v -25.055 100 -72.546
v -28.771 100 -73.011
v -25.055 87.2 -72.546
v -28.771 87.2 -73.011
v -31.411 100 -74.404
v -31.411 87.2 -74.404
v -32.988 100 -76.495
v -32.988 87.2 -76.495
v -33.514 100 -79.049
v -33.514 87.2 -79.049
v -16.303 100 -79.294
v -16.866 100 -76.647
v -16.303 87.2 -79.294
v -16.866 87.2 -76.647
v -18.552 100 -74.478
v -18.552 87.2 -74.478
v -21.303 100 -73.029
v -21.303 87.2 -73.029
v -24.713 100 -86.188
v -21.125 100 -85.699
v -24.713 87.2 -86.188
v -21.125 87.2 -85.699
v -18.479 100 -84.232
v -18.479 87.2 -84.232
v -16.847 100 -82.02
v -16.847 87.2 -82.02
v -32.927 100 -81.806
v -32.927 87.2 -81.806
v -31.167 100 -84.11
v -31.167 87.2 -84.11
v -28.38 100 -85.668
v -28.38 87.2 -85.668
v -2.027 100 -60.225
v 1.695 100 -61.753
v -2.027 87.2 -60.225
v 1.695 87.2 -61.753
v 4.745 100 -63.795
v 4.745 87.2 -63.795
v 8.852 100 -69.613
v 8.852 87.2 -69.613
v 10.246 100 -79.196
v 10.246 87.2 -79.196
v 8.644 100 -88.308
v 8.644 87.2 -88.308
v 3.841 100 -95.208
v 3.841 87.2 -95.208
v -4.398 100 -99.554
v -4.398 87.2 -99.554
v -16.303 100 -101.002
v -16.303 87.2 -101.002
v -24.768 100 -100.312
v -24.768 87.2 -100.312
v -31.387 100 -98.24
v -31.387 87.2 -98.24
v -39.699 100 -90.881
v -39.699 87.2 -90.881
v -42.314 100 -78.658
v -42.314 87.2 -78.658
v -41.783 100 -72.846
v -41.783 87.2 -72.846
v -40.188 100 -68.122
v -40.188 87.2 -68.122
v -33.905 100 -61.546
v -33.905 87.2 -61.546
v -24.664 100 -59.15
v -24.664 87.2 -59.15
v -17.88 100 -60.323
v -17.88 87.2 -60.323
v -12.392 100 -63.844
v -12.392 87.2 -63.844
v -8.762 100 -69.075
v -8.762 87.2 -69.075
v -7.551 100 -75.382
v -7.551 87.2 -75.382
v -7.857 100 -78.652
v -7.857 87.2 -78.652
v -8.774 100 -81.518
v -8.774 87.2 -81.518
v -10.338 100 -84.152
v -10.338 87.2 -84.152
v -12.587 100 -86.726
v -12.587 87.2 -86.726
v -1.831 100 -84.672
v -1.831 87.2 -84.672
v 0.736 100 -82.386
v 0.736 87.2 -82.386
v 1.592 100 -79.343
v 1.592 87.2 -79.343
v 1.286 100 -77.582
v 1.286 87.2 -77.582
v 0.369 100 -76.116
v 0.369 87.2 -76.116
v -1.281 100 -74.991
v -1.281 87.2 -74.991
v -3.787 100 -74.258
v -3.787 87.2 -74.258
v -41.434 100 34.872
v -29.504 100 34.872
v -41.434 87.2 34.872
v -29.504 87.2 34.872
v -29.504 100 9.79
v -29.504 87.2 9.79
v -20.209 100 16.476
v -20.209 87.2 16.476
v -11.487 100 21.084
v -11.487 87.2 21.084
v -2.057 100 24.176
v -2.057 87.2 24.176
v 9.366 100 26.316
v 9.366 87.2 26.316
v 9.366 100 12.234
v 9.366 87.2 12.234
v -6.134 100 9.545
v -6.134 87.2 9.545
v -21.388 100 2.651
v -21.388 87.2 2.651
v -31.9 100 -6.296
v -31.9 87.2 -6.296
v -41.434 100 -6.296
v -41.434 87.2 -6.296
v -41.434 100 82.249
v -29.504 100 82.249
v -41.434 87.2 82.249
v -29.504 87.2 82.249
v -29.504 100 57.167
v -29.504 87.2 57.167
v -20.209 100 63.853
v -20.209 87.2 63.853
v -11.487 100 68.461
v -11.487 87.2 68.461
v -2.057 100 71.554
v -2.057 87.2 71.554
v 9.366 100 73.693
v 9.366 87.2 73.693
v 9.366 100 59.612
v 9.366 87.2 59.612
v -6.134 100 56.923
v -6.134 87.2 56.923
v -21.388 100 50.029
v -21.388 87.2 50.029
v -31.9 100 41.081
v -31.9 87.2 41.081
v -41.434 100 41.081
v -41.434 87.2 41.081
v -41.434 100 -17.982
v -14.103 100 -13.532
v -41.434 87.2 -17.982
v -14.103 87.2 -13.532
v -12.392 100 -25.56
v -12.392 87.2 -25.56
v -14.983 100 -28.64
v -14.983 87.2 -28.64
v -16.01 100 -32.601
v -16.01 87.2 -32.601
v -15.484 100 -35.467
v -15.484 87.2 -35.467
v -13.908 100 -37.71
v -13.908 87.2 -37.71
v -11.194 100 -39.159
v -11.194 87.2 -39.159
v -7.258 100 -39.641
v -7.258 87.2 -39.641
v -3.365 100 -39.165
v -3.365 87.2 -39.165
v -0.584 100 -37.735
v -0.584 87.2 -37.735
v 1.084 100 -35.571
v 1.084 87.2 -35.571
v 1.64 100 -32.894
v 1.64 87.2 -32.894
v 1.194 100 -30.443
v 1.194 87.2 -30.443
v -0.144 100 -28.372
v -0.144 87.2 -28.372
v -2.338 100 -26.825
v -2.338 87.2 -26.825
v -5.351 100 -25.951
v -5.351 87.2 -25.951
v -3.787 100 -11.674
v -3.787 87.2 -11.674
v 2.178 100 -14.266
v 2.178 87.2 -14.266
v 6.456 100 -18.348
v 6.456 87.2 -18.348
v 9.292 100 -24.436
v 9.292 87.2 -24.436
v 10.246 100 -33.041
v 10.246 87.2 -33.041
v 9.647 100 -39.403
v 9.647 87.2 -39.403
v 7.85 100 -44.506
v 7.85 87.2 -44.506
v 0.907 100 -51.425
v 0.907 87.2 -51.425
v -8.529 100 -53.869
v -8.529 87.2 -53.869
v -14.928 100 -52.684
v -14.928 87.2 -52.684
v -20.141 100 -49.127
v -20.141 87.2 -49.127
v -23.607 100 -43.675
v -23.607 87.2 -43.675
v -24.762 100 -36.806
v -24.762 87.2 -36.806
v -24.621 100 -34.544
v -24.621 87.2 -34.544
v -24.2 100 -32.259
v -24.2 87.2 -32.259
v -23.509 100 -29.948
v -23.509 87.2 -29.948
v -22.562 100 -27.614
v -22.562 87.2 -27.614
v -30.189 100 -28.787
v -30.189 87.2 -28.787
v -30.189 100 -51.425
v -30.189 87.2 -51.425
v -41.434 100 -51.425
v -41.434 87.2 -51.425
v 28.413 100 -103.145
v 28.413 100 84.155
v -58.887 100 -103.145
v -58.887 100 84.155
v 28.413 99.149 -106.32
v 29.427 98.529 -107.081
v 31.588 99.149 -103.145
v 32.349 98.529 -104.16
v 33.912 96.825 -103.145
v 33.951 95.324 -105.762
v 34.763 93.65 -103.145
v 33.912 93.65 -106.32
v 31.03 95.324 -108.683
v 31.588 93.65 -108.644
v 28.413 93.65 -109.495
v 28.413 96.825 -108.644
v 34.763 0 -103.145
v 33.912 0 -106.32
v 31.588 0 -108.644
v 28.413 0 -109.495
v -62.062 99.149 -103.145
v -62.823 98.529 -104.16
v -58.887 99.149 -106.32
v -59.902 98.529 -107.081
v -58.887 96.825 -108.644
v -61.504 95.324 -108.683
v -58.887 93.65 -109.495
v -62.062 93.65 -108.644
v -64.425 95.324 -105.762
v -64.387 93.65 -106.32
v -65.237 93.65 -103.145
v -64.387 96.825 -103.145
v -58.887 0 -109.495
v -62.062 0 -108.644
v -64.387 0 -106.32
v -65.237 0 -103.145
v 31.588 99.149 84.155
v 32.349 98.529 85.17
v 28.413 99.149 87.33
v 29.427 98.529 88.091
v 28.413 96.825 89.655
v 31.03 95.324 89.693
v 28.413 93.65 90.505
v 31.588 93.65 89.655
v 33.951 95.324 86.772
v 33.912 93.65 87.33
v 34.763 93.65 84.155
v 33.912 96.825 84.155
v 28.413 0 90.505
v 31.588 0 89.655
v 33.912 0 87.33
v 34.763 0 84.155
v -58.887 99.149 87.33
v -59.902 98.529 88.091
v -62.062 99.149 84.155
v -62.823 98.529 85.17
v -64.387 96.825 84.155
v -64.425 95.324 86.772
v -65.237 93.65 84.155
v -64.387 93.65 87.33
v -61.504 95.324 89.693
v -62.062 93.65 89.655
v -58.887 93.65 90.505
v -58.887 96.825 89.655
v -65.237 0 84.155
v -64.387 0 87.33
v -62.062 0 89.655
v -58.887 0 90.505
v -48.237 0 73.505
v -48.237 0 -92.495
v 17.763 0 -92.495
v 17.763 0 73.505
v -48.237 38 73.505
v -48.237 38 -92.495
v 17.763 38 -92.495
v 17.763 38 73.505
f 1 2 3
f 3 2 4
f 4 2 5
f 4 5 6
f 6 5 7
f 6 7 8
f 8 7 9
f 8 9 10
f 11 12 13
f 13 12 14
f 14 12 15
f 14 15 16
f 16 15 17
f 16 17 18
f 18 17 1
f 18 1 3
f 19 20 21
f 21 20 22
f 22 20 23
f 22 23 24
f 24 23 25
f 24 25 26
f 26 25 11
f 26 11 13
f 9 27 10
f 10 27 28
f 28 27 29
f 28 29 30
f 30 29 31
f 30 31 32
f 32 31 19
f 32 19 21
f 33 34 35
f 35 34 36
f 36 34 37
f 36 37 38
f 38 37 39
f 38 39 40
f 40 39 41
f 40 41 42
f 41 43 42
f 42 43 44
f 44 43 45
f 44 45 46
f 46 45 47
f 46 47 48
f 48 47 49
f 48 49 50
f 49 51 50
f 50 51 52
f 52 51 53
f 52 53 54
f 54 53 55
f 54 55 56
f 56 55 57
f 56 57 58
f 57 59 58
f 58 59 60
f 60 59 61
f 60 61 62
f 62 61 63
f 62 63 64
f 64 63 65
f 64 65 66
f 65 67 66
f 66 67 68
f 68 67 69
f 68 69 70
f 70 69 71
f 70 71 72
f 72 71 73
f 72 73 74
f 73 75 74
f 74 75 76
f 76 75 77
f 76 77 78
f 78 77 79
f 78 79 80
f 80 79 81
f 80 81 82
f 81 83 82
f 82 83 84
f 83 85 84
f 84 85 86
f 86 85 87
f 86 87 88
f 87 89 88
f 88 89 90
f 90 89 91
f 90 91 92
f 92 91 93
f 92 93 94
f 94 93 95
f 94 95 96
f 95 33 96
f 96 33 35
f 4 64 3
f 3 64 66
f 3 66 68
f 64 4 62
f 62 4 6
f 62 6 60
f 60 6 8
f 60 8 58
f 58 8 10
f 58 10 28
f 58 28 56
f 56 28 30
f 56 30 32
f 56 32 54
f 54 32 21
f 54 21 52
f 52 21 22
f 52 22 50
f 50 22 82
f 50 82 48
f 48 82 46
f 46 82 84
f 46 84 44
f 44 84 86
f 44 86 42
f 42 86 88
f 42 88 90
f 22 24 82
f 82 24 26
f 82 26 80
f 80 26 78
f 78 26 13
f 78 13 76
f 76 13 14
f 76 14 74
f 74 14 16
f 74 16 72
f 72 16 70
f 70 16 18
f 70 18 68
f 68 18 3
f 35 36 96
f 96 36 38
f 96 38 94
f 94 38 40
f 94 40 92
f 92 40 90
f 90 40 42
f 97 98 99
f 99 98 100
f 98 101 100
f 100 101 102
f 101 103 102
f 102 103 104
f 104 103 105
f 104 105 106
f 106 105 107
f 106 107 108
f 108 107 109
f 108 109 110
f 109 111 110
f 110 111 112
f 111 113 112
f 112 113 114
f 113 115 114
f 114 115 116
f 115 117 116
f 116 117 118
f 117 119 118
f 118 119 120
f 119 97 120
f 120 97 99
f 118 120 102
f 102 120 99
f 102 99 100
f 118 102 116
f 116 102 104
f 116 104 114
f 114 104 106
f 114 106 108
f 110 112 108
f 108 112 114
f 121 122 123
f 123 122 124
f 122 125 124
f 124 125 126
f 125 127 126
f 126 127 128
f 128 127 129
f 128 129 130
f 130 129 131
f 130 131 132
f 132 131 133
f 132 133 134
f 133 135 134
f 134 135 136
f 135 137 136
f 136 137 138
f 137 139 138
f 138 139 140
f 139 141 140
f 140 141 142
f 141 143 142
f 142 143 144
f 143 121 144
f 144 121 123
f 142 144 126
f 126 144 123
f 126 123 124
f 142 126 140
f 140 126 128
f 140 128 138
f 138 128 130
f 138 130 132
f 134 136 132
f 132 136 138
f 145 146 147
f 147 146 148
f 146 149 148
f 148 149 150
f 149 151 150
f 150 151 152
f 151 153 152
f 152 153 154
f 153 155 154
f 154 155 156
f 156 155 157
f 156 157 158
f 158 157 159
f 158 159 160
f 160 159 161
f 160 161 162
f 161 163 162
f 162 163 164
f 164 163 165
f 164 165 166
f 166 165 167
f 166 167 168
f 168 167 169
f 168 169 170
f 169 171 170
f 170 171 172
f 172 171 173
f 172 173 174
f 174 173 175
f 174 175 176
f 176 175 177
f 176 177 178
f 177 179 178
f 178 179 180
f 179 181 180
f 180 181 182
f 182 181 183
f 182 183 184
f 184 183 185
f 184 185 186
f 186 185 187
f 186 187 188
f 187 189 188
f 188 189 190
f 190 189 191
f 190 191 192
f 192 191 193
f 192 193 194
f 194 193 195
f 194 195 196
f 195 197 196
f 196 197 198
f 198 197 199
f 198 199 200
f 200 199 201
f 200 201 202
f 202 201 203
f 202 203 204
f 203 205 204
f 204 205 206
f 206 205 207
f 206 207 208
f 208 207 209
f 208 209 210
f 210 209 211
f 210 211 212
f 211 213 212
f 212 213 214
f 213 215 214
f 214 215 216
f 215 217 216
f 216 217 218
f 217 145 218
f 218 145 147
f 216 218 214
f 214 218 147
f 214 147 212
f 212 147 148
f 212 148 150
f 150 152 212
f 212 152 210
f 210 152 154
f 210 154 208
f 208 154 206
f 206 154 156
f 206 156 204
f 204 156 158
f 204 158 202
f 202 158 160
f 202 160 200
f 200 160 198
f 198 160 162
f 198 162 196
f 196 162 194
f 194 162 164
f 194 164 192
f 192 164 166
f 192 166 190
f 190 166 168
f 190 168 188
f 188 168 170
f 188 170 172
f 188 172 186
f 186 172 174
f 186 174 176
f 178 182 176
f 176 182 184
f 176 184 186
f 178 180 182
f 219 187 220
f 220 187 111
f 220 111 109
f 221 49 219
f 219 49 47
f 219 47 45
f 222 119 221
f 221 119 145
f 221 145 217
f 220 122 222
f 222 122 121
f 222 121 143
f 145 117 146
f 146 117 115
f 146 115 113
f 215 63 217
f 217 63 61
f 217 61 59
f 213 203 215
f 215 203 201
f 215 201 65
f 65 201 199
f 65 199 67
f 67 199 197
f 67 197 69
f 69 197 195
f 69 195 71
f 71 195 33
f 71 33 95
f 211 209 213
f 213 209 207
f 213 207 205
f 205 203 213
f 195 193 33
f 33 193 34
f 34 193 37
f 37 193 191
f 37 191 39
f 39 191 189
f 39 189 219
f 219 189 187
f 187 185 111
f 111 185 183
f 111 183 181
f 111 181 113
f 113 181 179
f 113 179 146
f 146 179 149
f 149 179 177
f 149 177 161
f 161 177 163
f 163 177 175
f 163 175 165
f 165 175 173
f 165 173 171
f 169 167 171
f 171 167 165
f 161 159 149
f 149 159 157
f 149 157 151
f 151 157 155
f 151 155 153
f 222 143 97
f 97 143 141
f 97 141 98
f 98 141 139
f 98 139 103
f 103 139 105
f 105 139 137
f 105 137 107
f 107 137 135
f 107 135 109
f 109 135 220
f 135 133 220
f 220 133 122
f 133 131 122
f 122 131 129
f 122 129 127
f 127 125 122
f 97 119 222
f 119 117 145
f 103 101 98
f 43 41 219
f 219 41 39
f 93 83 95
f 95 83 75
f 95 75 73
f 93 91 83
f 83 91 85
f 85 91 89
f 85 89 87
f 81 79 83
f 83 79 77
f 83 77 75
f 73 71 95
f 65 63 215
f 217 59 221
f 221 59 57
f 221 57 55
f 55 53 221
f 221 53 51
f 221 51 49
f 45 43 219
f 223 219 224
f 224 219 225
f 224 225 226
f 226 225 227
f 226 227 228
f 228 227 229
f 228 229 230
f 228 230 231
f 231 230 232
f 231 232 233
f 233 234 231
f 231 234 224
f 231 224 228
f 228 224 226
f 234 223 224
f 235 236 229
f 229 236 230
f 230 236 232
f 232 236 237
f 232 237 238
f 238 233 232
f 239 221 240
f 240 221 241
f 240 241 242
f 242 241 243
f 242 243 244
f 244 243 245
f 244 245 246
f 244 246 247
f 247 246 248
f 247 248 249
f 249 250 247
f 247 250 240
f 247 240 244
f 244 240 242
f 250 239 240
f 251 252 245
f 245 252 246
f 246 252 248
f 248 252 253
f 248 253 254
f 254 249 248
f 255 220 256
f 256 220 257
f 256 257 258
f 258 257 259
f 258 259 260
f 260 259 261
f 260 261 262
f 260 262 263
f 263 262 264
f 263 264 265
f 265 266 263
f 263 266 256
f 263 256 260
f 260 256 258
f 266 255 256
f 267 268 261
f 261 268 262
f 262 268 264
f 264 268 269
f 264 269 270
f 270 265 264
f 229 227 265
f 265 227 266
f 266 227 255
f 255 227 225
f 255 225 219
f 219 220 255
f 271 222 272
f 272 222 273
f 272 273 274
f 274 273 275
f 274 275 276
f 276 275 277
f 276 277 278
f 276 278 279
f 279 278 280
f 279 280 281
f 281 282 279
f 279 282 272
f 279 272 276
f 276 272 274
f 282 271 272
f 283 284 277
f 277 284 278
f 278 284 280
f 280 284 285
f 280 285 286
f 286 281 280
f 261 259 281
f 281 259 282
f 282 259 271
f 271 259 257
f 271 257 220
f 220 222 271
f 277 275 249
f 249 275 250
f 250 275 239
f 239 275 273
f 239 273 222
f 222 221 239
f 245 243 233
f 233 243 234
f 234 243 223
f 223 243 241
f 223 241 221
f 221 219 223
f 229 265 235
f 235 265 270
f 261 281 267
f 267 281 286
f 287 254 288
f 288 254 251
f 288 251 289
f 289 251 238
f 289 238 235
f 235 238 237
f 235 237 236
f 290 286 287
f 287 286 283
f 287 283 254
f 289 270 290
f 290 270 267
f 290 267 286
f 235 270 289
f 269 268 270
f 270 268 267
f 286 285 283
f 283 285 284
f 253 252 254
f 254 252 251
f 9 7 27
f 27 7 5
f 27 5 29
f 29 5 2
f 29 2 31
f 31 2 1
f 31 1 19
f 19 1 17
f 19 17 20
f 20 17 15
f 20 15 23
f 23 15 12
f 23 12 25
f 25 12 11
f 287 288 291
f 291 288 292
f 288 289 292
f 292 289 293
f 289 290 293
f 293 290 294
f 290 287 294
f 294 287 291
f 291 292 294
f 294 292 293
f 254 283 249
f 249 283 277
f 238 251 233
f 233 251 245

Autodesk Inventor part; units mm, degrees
ref_plane "YZ Plane" through (0, 0, 0) normal (1, 0, 0) x (0, 1, 0)
ref_plane "XZ Plane" through (0, 0, 0) normal (0, 1, 0) x (-1, 0, 0)
ref_plane "XY Plane" through (0, 0, 0) normal (0, 0, 1) x (1, 0, 0)
sketch "Sketch1" plane through (0, 0, 0) normal (0, 1, 0) x (-1, 0, 0)
  line L0 (65.2374, 90.5054) -> (-34.7626, 90.5054)
  line L1 (-34.7626, 90.5054) -> (-34.7626, -109.4946)
  line L2 (-34.7626, -109.4946) -> (65.2374, -109.4946)
  line L3 (65.2374, -109.4946) -> (65.2374, 90.5054)
  point P0 (0, 0)
  dimension "d0" = 200
  dimension "d1" = 100
extrude "Extrusion1" add sketch "Sketch1" along normal blind 100
sketch "Sketch2" plane through (0, 0, 0) normal (0, -1, 0) x (1, 0, 0)
  line L0 (17.7626, 73.5054) -> (-48.2374, 73.5054)
  line L1 (-48.2374, 73.5054) -> (-48.2374, -92.4946)
  line L2 (-48.2374, -92.4946) -> (17.7626, -92.4946)
  line L3 (17.7626, -92.4946) -> (17.7626, 73.5054)
  line L4 (34.7626, 90.5054) -> (34.7626, -109.4946) projected
  line L5 (-65.2374, 90.5054) -> (34.7626, 90.5054) projected
  line L6 (34.7626, -109.4946) -> (-65.2374, -109.4946) projected
  line L7 (-65.2374, -109.4946) -> (-65.2374, 90.5054) projected
  point P0 (0, 0)
  dimension "d4" = 17
  dimension "d5" = 17
  dimension "d6" = 17
  dimension "d7" = 17
extrude "Extrusion2" cut sketch "Sketch2" against normal blind 38 contours L3 L2 L1 L0
fillet "Fillet1" radius 6.35 8 edges at (-15.2374, 100, 90.5054) (34.7626, 100, -9.4946) (34.7626, 50, 90.5054) (-65.2374, 50, 90.5054) (-65.2374, 100, -9.4946) (-15.2374, 100, -109.4946) (34.7626, 50, -109.4946) (-65.2374, 50, -109.4946)
sketch "Sketch3" plane through (0, 100, 0) normal (0, 1, 0) x (1, 0, 0)
  line L0 (-42.3145, -85.4273) -> (-42.3145, -16.4468) construction
  line L1 (-42.3145, -16.4468) -> (96.9241, -16.4468) construction
  line L2 (96.9241, -16.4468) -> (96.9241, -85.4273) construction
  line L3 (96.9241, -85.4273) -> (-42.3145, -85.4273) construction
  line L4 (-41.4344, -82.2493) -> (-41.4344, -41.0812)
  line L5 (-41.4344, -41.0812) -> (-31.9002, -41.0812)
  spline S0 degree 2 poles (-31.9002, -41.0812) (-27.0598, -46.4595) (-21.3882, -50.0287) knots 0 0 0 1 1 1
  spline S1 degree 2 poles (-21.3882, -50.0287) (-14.5432, -54.3802) (-6.1335, -56.9226) knots 0 0 0 1 1 1
  spline S2 degree 2 poles (-6.1335, -56.9226) (0.4181, -58.9272) (9.3656, -59.6117) knots 0 0 0 1 1 1
  line L6 (9.3656, -59.6117) -> (9.3656, -73.693)
  spline S3 degree 2 poles (9.3656, -73.693) (-3.0533, -72.0306) (-19.9214, -64.8922) (-29.5045, -57.1671) knots 0 0 0 1 2 2 2
  line L7 (-29.5045, -57.1671) -> (-29.5045, -82.2493)
  line L8 (-29.5045, -82.2493) -> (-41.4344, -82.2493)
  line L9 (-41.4344, -34.8718) -> (-41.4344, 6.2962)
  line L10 (-41.4344, 6.2962) -> (-31.9002, 6.2962)
  spline S4 degree 2 poles (-31.9002, 6.2962) (-27.0598, 0.918) (-21.3882, -2.6512) knots 0 0 0 1 1 1
  spline S5 degree 2 poles (-21.3882, -2.6512) (-14.5432, -7.0027) (-6.1335, -9.5451) knots 0 0 0 1 1 1
  spline S6 degree 2 poles (-6.1335, -9.5451) (0.4181, -11.5498) (9.3656, -12.2343) knots 0 0 0 1 1 1
  line L11 (9.3656, -12.2343) -> (9.3656, -26.3155)
  spline S7 degree 2 poles (9.3656, -26.3155) (-3.0533, -24.6531) (-19.9214, -17.5147) (-29.5045, -9.7896) knots 0 0 0 1 2 2 2
  line L12 (-29.5045, -9.7896) -> (-29.5045, -34.8718)
  line L13 (-29.5045, -34.8718) -> (-41.4344, -34.8718)
  line L14 (-41.4344, 17.9817) -> (-41.4344, 51.4246)
  line L15 (-41.4344, 51.4246) -> (-30.189, 51.4246)
  line L16 (-30.189, 51.4246) -> (-30.189, 28.7871)
  line L17 (-30.189, 28.7871) -> (-22.5616, 27.6137)
  spline S8 degree 2 poles (-22.5616, 27.6137) (-23.6373, 29.9605) (-24.7618, 34.5565) (-24.7618, 36.8056) knots 0 0 0 1 2 2 2
  spline S9 degree 2 poles (-24.7618, 36.8056) (-24.7618, 44.384) (-15.521, 53.8693) (-8.5293, 53.8693) knots 0 0 0 1 2 2 2
  spline S10 degree 2 poles (-8.5293, 53.8693) (-3.64, 53.8693) (5.4541, 48.98) (10.2457, 40.0325) (10.2457, 33.0408) knots 0 0 0 1 2 3 3 3
  spline S11 degree 2 poles (10.2457, 33.0408) (10.2457, 28.0048) (8.3388, 20.8664) (4.5741, 15.8304) (-0.2175, 12.7012) (-3.7867, 11.6745) knots 0 0 0 1 2 3 4 4 4
  line L18 (-3.7867, 11.6745) -> (-5.3512, 25.9513)
  spline S12 degree 2 poles (-5.3512, 25.9513) (-1.9287, 26.4891) (1.6405, 30.2539) (1.6405, 32.8941) knots 0 0 0 1 2 2 2
  spline S13 degree 2 poles (1.6405, 32.8941) (1.6405, 35.8277) (-2.8088, 39.6414) (-7.2581, 39.6414) knots 0 0 0 1 2 2 2
  spline S14 degree 2 poles (-7.2581, 39.6414) (-11.8051, 39.6414) (-16.01, 35.7788) (-16.01, 32.6008) knots 0 0 0 1 2 2 2
  spline S15 degree 2 poles (-16.01, 32.6008) (-16.01, 30.5473) (-14.9832, 28.6404) knots 0 0 0 1 1 1
  spline S16 degree 2 poles (-14.9832, 28.6404) (-14.2987, 27.2714) (-12.3919, 25.5601) knots 0 0 0 1 1 1
  line L19 (-12.3919, 25.5601) -> (-14.1031, 13.5324)
  line L20 (-14.1031, 13.5324) -> (-41.4344, 17.9817)
  line L21 (-2.0265, 60.2254) -> (-3.7867, 74.2577)
  spline S17 degree 2 poles (-3.7867, 74.2577) (-0.8531, 74.7956) (1.5916, 77.4358) (1.5916, 79.3426) knots 0 0 0 1 2 2 2
  spline S18 degree 2 poles (1.5916, 79.3426) (1.5916, 82.7652) (-1.8309, 84.672) knots 0 0 0 1 1 1
  spline S19 degree 2 poles (-1.8309, 84.672) (-4.3734, 86.041) (-12.5874, 86.7255) knots 0 0 0 1 1 1
  spline S20 degree 2 poles (-12.5874, 86.7255) (-9.9961, 84.1831) (-7.5514, 78.8537) (-7.5514, 75.3823) knots 0 0 0 1 2 2 2
  spline S21 degree 2 poles (-7.5514, 75.3823) (-7.5514, 68.5372) (-17.2323, 59.1498) (-24.664, 59.1498) knots 0 0 0 1 2 2 2
  spline S22 degree 2 poles (-24.664, 59.1498) (-29.7489, 59.1498) (-38.0608, 63.9413) (-42.3145, 72.302) (-42.3145, 78.6581) knots 0 0 0 1 2 3 3 3
  spline S23 degree 2 poles (-42.3145, 78.6581) (-42.3145, 86.2855) (-37.0829, 95.4774) (-25.6908, 101.0023) (-16.3033, 101.0023) knots 0 0 0 1 2 3 3 3
  spline S24 degree 2 poles (-16.3033, 101.0023) (-2.5643, 101.0023) (10.2457, 89.4146) (10.2457, 79.196) knots 0 0 0 1 2 2 2
  spline S25 degree 2 poles (10.2457, 79.196) (10.2457, 73.1332) (7.4588, 66.0926) (2.0316, 61.4966) (-2.0265, 60.2254) knots 0 0 0 1 2 3 3 3
  spline S26 degree 2 poles (-24.7129, 86.1877) (-28.82, 86.1877) (-33.5137, 82.0318) (-33.5137, 79.0493) knots 0 0 0 1 2 2 2
  spline S27 degree 2 poles (-33.5137, 79.0493) (-33.5137, 76.2624) (-29.3089, 72.5465) (-25.0552, 72.5465) knots 0 0 0 1 2 2 2
  spline S28 degree 2 poles (-25.0552, 72.5465) (-20.8015, 72.5465) (-16.3033, 76.409) (-16.3033, 79.2937) knots 0 0 0 1 2 2 2
  spline S29 degree 2 poles (-16.3033, 79.2937) (-16.3033, 82.2762) (-20.6548, 86.1877) (-24.7129, 86.1877) knots 0 0 0 1 2 2 2
  point P0 (0, 0)
extrude "Extrusion3" cut sketch "Sketch3" against normal blind 12.8
properties part number "7759Block"
